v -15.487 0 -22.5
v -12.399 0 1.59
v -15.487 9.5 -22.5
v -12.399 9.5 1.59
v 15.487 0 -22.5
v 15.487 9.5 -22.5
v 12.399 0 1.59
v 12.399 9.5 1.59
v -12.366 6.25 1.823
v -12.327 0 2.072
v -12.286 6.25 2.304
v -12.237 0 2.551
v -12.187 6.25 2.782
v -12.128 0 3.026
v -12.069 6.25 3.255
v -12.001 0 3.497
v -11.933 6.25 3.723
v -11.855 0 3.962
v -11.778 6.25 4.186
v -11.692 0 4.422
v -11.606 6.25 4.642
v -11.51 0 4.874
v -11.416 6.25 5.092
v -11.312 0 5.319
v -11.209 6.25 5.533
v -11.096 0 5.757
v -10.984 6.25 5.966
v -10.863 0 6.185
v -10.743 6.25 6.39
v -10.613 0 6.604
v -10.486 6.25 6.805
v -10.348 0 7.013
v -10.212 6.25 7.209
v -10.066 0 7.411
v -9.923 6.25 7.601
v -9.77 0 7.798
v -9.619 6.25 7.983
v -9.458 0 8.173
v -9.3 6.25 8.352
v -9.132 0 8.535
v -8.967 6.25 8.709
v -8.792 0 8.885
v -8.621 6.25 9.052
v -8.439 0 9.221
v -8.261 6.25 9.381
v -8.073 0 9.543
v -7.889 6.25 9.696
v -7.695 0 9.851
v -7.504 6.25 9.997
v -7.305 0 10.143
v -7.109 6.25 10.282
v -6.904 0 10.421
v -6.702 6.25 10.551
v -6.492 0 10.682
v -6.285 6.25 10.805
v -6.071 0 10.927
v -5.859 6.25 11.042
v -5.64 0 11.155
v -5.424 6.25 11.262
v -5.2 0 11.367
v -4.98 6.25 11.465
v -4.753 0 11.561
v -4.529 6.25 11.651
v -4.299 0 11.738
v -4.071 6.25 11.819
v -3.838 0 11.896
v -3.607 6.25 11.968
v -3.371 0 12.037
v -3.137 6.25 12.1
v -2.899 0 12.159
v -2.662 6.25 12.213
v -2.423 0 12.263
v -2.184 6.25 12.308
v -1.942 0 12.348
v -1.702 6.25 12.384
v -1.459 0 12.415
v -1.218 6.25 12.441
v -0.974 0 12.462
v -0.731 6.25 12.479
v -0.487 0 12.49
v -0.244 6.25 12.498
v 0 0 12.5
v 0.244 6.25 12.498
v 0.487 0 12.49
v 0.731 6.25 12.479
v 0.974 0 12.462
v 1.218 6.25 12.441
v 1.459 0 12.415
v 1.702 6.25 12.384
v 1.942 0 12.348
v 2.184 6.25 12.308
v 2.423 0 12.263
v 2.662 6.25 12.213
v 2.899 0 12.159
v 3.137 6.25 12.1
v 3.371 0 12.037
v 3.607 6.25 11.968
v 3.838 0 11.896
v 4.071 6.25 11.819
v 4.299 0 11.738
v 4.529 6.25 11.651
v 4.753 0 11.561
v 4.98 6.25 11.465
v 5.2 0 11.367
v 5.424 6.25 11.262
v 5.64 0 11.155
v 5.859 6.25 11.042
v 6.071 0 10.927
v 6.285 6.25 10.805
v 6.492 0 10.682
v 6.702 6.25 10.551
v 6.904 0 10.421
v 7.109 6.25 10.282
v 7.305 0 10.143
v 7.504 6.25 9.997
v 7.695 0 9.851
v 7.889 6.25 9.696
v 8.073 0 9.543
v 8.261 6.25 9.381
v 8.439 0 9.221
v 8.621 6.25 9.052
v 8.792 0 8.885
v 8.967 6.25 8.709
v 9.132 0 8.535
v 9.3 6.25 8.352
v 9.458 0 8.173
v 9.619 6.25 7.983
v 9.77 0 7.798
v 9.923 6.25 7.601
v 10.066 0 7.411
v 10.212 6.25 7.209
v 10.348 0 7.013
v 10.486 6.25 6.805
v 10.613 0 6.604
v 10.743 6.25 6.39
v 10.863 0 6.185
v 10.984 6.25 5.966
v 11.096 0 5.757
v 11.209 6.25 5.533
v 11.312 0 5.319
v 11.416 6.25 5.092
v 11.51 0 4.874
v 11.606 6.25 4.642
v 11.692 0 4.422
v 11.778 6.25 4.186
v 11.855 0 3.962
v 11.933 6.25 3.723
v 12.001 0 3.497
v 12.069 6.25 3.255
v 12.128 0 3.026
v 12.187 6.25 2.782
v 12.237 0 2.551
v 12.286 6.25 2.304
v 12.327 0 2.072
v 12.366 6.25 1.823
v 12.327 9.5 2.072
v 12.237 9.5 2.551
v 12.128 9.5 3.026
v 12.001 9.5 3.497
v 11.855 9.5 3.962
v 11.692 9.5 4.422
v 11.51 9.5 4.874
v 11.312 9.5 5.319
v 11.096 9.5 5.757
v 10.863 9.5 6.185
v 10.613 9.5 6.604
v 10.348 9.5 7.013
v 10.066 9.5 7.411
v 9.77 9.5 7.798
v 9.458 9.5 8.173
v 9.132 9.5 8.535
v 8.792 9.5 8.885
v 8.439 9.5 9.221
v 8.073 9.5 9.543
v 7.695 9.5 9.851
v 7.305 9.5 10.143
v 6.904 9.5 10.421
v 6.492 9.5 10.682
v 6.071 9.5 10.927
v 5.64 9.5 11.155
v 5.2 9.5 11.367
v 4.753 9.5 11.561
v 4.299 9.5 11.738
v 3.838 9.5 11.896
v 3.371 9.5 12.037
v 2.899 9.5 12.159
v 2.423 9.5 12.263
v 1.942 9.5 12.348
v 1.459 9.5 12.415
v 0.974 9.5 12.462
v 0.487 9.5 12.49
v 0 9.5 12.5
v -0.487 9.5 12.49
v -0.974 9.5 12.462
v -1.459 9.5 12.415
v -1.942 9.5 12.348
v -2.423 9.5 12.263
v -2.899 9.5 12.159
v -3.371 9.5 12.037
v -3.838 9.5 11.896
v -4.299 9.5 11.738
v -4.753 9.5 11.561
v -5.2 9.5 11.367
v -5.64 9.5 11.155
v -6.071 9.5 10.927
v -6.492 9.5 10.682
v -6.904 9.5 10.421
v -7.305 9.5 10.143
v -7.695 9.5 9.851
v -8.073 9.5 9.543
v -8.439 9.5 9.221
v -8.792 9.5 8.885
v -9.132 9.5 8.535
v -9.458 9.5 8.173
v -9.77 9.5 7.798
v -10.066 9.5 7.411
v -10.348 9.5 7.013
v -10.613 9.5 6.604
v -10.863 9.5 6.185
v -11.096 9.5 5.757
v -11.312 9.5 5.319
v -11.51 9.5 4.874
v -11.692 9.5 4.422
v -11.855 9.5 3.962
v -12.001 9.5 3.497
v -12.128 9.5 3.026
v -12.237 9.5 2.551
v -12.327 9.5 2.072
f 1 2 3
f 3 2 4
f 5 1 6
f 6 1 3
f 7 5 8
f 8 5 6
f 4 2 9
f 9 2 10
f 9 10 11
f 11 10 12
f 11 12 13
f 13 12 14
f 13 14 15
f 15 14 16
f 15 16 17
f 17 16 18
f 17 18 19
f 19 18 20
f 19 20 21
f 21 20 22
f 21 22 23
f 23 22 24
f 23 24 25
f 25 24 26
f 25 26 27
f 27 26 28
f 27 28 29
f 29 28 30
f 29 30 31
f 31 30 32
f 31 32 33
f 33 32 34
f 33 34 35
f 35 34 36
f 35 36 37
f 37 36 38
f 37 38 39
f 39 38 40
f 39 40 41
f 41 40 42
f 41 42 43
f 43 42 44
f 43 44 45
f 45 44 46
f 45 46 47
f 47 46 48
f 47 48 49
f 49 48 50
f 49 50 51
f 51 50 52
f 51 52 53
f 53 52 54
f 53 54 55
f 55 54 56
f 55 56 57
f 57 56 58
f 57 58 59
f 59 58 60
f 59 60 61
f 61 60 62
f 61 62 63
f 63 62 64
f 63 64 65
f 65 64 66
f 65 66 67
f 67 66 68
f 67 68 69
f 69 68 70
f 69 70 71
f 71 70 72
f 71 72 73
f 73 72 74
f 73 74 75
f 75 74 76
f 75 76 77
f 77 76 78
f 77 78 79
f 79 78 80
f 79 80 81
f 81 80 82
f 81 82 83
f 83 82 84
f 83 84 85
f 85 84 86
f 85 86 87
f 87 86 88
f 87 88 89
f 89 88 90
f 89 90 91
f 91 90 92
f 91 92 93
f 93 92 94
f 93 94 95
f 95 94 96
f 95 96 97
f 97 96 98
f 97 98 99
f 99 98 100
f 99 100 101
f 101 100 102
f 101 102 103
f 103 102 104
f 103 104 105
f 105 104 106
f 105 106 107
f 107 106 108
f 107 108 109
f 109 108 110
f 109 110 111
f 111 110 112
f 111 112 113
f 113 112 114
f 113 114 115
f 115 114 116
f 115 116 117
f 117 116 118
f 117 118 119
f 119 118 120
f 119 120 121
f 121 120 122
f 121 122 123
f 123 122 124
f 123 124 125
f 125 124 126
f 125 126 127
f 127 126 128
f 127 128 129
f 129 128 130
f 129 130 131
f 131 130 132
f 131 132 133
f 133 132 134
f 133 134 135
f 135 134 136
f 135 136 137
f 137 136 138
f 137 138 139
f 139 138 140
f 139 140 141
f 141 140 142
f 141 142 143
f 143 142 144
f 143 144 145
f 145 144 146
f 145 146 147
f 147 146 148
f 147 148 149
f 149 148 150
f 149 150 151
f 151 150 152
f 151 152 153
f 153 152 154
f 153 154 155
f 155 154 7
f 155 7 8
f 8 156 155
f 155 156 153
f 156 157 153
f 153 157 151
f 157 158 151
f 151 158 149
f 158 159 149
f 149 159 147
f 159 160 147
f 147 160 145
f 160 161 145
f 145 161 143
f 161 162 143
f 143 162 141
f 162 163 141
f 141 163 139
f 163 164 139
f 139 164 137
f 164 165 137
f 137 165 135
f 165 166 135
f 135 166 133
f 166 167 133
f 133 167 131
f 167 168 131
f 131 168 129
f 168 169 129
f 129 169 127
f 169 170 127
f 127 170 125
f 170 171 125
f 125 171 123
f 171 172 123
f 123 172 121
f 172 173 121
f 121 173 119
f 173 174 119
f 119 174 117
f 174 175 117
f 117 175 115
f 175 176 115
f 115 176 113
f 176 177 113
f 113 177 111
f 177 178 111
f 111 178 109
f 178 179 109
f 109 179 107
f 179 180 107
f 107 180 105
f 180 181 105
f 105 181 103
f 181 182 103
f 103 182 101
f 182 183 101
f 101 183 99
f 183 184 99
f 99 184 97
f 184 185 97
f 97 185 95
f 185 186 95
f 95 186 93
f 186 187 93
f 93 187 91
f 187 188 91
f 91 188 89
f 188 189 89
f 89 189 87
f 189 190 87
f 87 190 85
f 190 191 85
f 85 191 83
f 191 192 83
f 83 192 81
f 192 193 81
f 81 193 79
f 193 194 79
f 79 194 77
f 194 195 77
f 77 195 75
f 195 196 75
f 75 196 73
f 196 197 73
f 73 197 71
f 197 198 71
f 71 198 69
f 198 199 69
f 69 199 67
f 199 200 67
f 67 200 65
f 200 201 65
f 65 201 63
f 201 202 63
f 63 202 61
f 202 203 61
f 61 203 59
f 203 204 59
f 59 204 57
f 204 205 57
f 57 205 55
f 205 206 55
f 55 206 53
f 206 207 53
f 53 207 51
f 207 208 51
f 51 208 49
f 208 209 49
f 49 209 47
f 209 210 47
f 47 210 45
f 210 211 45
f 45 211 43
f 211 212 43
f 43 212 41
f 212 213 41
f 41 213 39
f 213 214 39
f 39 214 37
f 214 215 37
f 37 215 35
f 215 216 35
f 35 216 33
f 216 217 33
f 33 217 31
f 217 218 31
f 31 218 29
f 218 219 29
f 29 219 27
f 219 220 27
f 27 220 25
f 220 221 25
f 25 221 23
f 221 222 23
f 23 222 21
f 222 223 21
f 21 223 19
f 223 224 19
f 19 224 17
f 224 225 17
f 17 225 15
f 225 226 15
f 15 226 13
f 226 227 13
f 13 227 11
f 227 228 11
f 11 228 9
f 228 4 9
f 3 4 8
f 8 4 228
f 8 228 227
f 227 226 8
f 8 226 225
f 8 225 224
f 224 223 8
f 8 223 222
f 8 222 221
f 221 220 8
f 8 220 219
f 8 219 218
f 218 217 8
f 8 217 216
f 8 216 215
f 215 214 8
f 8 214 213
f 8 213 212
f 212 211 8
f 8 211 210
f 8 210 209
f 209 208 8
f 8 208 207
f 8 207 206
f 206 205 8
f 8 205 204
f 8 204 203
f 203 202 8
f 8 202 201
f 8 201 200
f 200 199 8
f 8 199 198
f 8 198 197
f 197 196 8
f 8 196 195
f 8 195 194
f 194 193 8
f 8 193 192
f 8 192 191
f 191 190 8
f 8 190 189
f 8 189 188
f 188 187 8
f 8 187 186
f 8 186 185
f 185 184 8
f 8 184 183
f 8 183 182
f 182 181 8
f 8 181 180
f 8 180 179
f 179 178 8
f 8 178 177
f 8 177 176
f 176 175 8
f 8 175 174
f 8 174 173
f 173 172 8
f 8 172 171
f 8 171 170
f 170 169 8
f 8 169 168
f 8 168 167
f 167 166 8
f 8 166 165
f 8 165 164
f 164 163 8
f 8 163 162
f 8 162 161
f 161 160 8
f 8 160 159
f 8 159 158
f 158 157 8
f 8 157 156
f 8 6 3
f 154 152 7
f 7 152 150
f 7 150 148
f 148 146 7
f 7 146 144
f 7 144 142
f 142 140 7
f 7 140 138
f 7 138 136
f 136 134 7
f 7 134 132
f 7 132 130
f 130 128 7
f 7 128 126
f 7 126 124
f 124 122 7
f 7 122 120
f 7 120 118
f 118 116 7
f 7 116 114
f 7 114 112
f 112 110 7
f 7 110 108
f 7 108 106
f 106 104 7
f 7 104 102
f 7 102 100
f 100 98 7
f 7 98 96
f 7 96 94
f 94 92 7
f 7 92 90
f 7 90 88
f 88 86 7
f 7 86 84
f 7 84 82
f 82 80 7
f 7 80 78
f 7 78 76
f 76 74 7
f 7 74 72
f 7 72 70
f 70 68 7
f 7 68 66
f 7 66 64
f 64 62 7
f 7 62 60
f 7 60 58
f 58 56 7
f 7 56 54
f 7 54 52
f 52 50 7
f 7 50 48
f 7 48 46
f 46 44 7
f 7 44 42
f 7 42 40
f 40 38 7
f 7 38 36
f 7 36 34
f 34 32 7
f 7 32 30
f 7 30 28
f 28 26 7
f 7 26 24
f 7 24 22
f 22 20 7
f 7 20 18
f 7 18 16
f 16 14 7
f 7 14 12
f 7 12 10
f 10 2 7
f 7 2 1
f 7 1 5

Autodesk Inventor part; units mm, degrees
ref_plane "YZ Plane" through (0, 0, 0) normal (1, 0, 0) x (0, 1, 0)
ref_plane "XZ Plane" through (0, 0, 0) normal (0, 1, 0) x (-1, 0, 0)
ref_plane "XY Plane" through (0, 0, 0) normal (0, 0, 1) x (1, 0, 0)
sketch "Skizze1" plane through (0, 0, 0) normal (0, 1, 0) x (-1, 0, 0)
  arc A0 (12.3985, 1.5897) -> (0, 12.5) centre (0, 0) ccw
  line L0 (0, -34.7678) -> (0, 23.1071) construction
  line L1 (12.3985, 1.5897) -> (16, -26.5)
  line L2 (16, -26.5) -> (0, -26.5)
  arc A1 (0, 12.5) -> (-12.3985, 1.5897) centre (0, 0) ccw
  line L3 (-12.3985, 1.5897) -> (-16, -26.5)
  line L4 (-16, -26.5) -> (0, -26.5)
  line L5 (15.4871, -22.5) -> (-15.4871, -22.5)
  dimension "d0" = 25
  dimension "d1" = 32
  dimension "d2" = 39
  dimension "d3" = 35
extrude "Extrusion1" add sketch "Skizze1" along normal blind 9.5 contours L1 L5 L3 A1 A0
properties part number "Steitenteil_voll"
